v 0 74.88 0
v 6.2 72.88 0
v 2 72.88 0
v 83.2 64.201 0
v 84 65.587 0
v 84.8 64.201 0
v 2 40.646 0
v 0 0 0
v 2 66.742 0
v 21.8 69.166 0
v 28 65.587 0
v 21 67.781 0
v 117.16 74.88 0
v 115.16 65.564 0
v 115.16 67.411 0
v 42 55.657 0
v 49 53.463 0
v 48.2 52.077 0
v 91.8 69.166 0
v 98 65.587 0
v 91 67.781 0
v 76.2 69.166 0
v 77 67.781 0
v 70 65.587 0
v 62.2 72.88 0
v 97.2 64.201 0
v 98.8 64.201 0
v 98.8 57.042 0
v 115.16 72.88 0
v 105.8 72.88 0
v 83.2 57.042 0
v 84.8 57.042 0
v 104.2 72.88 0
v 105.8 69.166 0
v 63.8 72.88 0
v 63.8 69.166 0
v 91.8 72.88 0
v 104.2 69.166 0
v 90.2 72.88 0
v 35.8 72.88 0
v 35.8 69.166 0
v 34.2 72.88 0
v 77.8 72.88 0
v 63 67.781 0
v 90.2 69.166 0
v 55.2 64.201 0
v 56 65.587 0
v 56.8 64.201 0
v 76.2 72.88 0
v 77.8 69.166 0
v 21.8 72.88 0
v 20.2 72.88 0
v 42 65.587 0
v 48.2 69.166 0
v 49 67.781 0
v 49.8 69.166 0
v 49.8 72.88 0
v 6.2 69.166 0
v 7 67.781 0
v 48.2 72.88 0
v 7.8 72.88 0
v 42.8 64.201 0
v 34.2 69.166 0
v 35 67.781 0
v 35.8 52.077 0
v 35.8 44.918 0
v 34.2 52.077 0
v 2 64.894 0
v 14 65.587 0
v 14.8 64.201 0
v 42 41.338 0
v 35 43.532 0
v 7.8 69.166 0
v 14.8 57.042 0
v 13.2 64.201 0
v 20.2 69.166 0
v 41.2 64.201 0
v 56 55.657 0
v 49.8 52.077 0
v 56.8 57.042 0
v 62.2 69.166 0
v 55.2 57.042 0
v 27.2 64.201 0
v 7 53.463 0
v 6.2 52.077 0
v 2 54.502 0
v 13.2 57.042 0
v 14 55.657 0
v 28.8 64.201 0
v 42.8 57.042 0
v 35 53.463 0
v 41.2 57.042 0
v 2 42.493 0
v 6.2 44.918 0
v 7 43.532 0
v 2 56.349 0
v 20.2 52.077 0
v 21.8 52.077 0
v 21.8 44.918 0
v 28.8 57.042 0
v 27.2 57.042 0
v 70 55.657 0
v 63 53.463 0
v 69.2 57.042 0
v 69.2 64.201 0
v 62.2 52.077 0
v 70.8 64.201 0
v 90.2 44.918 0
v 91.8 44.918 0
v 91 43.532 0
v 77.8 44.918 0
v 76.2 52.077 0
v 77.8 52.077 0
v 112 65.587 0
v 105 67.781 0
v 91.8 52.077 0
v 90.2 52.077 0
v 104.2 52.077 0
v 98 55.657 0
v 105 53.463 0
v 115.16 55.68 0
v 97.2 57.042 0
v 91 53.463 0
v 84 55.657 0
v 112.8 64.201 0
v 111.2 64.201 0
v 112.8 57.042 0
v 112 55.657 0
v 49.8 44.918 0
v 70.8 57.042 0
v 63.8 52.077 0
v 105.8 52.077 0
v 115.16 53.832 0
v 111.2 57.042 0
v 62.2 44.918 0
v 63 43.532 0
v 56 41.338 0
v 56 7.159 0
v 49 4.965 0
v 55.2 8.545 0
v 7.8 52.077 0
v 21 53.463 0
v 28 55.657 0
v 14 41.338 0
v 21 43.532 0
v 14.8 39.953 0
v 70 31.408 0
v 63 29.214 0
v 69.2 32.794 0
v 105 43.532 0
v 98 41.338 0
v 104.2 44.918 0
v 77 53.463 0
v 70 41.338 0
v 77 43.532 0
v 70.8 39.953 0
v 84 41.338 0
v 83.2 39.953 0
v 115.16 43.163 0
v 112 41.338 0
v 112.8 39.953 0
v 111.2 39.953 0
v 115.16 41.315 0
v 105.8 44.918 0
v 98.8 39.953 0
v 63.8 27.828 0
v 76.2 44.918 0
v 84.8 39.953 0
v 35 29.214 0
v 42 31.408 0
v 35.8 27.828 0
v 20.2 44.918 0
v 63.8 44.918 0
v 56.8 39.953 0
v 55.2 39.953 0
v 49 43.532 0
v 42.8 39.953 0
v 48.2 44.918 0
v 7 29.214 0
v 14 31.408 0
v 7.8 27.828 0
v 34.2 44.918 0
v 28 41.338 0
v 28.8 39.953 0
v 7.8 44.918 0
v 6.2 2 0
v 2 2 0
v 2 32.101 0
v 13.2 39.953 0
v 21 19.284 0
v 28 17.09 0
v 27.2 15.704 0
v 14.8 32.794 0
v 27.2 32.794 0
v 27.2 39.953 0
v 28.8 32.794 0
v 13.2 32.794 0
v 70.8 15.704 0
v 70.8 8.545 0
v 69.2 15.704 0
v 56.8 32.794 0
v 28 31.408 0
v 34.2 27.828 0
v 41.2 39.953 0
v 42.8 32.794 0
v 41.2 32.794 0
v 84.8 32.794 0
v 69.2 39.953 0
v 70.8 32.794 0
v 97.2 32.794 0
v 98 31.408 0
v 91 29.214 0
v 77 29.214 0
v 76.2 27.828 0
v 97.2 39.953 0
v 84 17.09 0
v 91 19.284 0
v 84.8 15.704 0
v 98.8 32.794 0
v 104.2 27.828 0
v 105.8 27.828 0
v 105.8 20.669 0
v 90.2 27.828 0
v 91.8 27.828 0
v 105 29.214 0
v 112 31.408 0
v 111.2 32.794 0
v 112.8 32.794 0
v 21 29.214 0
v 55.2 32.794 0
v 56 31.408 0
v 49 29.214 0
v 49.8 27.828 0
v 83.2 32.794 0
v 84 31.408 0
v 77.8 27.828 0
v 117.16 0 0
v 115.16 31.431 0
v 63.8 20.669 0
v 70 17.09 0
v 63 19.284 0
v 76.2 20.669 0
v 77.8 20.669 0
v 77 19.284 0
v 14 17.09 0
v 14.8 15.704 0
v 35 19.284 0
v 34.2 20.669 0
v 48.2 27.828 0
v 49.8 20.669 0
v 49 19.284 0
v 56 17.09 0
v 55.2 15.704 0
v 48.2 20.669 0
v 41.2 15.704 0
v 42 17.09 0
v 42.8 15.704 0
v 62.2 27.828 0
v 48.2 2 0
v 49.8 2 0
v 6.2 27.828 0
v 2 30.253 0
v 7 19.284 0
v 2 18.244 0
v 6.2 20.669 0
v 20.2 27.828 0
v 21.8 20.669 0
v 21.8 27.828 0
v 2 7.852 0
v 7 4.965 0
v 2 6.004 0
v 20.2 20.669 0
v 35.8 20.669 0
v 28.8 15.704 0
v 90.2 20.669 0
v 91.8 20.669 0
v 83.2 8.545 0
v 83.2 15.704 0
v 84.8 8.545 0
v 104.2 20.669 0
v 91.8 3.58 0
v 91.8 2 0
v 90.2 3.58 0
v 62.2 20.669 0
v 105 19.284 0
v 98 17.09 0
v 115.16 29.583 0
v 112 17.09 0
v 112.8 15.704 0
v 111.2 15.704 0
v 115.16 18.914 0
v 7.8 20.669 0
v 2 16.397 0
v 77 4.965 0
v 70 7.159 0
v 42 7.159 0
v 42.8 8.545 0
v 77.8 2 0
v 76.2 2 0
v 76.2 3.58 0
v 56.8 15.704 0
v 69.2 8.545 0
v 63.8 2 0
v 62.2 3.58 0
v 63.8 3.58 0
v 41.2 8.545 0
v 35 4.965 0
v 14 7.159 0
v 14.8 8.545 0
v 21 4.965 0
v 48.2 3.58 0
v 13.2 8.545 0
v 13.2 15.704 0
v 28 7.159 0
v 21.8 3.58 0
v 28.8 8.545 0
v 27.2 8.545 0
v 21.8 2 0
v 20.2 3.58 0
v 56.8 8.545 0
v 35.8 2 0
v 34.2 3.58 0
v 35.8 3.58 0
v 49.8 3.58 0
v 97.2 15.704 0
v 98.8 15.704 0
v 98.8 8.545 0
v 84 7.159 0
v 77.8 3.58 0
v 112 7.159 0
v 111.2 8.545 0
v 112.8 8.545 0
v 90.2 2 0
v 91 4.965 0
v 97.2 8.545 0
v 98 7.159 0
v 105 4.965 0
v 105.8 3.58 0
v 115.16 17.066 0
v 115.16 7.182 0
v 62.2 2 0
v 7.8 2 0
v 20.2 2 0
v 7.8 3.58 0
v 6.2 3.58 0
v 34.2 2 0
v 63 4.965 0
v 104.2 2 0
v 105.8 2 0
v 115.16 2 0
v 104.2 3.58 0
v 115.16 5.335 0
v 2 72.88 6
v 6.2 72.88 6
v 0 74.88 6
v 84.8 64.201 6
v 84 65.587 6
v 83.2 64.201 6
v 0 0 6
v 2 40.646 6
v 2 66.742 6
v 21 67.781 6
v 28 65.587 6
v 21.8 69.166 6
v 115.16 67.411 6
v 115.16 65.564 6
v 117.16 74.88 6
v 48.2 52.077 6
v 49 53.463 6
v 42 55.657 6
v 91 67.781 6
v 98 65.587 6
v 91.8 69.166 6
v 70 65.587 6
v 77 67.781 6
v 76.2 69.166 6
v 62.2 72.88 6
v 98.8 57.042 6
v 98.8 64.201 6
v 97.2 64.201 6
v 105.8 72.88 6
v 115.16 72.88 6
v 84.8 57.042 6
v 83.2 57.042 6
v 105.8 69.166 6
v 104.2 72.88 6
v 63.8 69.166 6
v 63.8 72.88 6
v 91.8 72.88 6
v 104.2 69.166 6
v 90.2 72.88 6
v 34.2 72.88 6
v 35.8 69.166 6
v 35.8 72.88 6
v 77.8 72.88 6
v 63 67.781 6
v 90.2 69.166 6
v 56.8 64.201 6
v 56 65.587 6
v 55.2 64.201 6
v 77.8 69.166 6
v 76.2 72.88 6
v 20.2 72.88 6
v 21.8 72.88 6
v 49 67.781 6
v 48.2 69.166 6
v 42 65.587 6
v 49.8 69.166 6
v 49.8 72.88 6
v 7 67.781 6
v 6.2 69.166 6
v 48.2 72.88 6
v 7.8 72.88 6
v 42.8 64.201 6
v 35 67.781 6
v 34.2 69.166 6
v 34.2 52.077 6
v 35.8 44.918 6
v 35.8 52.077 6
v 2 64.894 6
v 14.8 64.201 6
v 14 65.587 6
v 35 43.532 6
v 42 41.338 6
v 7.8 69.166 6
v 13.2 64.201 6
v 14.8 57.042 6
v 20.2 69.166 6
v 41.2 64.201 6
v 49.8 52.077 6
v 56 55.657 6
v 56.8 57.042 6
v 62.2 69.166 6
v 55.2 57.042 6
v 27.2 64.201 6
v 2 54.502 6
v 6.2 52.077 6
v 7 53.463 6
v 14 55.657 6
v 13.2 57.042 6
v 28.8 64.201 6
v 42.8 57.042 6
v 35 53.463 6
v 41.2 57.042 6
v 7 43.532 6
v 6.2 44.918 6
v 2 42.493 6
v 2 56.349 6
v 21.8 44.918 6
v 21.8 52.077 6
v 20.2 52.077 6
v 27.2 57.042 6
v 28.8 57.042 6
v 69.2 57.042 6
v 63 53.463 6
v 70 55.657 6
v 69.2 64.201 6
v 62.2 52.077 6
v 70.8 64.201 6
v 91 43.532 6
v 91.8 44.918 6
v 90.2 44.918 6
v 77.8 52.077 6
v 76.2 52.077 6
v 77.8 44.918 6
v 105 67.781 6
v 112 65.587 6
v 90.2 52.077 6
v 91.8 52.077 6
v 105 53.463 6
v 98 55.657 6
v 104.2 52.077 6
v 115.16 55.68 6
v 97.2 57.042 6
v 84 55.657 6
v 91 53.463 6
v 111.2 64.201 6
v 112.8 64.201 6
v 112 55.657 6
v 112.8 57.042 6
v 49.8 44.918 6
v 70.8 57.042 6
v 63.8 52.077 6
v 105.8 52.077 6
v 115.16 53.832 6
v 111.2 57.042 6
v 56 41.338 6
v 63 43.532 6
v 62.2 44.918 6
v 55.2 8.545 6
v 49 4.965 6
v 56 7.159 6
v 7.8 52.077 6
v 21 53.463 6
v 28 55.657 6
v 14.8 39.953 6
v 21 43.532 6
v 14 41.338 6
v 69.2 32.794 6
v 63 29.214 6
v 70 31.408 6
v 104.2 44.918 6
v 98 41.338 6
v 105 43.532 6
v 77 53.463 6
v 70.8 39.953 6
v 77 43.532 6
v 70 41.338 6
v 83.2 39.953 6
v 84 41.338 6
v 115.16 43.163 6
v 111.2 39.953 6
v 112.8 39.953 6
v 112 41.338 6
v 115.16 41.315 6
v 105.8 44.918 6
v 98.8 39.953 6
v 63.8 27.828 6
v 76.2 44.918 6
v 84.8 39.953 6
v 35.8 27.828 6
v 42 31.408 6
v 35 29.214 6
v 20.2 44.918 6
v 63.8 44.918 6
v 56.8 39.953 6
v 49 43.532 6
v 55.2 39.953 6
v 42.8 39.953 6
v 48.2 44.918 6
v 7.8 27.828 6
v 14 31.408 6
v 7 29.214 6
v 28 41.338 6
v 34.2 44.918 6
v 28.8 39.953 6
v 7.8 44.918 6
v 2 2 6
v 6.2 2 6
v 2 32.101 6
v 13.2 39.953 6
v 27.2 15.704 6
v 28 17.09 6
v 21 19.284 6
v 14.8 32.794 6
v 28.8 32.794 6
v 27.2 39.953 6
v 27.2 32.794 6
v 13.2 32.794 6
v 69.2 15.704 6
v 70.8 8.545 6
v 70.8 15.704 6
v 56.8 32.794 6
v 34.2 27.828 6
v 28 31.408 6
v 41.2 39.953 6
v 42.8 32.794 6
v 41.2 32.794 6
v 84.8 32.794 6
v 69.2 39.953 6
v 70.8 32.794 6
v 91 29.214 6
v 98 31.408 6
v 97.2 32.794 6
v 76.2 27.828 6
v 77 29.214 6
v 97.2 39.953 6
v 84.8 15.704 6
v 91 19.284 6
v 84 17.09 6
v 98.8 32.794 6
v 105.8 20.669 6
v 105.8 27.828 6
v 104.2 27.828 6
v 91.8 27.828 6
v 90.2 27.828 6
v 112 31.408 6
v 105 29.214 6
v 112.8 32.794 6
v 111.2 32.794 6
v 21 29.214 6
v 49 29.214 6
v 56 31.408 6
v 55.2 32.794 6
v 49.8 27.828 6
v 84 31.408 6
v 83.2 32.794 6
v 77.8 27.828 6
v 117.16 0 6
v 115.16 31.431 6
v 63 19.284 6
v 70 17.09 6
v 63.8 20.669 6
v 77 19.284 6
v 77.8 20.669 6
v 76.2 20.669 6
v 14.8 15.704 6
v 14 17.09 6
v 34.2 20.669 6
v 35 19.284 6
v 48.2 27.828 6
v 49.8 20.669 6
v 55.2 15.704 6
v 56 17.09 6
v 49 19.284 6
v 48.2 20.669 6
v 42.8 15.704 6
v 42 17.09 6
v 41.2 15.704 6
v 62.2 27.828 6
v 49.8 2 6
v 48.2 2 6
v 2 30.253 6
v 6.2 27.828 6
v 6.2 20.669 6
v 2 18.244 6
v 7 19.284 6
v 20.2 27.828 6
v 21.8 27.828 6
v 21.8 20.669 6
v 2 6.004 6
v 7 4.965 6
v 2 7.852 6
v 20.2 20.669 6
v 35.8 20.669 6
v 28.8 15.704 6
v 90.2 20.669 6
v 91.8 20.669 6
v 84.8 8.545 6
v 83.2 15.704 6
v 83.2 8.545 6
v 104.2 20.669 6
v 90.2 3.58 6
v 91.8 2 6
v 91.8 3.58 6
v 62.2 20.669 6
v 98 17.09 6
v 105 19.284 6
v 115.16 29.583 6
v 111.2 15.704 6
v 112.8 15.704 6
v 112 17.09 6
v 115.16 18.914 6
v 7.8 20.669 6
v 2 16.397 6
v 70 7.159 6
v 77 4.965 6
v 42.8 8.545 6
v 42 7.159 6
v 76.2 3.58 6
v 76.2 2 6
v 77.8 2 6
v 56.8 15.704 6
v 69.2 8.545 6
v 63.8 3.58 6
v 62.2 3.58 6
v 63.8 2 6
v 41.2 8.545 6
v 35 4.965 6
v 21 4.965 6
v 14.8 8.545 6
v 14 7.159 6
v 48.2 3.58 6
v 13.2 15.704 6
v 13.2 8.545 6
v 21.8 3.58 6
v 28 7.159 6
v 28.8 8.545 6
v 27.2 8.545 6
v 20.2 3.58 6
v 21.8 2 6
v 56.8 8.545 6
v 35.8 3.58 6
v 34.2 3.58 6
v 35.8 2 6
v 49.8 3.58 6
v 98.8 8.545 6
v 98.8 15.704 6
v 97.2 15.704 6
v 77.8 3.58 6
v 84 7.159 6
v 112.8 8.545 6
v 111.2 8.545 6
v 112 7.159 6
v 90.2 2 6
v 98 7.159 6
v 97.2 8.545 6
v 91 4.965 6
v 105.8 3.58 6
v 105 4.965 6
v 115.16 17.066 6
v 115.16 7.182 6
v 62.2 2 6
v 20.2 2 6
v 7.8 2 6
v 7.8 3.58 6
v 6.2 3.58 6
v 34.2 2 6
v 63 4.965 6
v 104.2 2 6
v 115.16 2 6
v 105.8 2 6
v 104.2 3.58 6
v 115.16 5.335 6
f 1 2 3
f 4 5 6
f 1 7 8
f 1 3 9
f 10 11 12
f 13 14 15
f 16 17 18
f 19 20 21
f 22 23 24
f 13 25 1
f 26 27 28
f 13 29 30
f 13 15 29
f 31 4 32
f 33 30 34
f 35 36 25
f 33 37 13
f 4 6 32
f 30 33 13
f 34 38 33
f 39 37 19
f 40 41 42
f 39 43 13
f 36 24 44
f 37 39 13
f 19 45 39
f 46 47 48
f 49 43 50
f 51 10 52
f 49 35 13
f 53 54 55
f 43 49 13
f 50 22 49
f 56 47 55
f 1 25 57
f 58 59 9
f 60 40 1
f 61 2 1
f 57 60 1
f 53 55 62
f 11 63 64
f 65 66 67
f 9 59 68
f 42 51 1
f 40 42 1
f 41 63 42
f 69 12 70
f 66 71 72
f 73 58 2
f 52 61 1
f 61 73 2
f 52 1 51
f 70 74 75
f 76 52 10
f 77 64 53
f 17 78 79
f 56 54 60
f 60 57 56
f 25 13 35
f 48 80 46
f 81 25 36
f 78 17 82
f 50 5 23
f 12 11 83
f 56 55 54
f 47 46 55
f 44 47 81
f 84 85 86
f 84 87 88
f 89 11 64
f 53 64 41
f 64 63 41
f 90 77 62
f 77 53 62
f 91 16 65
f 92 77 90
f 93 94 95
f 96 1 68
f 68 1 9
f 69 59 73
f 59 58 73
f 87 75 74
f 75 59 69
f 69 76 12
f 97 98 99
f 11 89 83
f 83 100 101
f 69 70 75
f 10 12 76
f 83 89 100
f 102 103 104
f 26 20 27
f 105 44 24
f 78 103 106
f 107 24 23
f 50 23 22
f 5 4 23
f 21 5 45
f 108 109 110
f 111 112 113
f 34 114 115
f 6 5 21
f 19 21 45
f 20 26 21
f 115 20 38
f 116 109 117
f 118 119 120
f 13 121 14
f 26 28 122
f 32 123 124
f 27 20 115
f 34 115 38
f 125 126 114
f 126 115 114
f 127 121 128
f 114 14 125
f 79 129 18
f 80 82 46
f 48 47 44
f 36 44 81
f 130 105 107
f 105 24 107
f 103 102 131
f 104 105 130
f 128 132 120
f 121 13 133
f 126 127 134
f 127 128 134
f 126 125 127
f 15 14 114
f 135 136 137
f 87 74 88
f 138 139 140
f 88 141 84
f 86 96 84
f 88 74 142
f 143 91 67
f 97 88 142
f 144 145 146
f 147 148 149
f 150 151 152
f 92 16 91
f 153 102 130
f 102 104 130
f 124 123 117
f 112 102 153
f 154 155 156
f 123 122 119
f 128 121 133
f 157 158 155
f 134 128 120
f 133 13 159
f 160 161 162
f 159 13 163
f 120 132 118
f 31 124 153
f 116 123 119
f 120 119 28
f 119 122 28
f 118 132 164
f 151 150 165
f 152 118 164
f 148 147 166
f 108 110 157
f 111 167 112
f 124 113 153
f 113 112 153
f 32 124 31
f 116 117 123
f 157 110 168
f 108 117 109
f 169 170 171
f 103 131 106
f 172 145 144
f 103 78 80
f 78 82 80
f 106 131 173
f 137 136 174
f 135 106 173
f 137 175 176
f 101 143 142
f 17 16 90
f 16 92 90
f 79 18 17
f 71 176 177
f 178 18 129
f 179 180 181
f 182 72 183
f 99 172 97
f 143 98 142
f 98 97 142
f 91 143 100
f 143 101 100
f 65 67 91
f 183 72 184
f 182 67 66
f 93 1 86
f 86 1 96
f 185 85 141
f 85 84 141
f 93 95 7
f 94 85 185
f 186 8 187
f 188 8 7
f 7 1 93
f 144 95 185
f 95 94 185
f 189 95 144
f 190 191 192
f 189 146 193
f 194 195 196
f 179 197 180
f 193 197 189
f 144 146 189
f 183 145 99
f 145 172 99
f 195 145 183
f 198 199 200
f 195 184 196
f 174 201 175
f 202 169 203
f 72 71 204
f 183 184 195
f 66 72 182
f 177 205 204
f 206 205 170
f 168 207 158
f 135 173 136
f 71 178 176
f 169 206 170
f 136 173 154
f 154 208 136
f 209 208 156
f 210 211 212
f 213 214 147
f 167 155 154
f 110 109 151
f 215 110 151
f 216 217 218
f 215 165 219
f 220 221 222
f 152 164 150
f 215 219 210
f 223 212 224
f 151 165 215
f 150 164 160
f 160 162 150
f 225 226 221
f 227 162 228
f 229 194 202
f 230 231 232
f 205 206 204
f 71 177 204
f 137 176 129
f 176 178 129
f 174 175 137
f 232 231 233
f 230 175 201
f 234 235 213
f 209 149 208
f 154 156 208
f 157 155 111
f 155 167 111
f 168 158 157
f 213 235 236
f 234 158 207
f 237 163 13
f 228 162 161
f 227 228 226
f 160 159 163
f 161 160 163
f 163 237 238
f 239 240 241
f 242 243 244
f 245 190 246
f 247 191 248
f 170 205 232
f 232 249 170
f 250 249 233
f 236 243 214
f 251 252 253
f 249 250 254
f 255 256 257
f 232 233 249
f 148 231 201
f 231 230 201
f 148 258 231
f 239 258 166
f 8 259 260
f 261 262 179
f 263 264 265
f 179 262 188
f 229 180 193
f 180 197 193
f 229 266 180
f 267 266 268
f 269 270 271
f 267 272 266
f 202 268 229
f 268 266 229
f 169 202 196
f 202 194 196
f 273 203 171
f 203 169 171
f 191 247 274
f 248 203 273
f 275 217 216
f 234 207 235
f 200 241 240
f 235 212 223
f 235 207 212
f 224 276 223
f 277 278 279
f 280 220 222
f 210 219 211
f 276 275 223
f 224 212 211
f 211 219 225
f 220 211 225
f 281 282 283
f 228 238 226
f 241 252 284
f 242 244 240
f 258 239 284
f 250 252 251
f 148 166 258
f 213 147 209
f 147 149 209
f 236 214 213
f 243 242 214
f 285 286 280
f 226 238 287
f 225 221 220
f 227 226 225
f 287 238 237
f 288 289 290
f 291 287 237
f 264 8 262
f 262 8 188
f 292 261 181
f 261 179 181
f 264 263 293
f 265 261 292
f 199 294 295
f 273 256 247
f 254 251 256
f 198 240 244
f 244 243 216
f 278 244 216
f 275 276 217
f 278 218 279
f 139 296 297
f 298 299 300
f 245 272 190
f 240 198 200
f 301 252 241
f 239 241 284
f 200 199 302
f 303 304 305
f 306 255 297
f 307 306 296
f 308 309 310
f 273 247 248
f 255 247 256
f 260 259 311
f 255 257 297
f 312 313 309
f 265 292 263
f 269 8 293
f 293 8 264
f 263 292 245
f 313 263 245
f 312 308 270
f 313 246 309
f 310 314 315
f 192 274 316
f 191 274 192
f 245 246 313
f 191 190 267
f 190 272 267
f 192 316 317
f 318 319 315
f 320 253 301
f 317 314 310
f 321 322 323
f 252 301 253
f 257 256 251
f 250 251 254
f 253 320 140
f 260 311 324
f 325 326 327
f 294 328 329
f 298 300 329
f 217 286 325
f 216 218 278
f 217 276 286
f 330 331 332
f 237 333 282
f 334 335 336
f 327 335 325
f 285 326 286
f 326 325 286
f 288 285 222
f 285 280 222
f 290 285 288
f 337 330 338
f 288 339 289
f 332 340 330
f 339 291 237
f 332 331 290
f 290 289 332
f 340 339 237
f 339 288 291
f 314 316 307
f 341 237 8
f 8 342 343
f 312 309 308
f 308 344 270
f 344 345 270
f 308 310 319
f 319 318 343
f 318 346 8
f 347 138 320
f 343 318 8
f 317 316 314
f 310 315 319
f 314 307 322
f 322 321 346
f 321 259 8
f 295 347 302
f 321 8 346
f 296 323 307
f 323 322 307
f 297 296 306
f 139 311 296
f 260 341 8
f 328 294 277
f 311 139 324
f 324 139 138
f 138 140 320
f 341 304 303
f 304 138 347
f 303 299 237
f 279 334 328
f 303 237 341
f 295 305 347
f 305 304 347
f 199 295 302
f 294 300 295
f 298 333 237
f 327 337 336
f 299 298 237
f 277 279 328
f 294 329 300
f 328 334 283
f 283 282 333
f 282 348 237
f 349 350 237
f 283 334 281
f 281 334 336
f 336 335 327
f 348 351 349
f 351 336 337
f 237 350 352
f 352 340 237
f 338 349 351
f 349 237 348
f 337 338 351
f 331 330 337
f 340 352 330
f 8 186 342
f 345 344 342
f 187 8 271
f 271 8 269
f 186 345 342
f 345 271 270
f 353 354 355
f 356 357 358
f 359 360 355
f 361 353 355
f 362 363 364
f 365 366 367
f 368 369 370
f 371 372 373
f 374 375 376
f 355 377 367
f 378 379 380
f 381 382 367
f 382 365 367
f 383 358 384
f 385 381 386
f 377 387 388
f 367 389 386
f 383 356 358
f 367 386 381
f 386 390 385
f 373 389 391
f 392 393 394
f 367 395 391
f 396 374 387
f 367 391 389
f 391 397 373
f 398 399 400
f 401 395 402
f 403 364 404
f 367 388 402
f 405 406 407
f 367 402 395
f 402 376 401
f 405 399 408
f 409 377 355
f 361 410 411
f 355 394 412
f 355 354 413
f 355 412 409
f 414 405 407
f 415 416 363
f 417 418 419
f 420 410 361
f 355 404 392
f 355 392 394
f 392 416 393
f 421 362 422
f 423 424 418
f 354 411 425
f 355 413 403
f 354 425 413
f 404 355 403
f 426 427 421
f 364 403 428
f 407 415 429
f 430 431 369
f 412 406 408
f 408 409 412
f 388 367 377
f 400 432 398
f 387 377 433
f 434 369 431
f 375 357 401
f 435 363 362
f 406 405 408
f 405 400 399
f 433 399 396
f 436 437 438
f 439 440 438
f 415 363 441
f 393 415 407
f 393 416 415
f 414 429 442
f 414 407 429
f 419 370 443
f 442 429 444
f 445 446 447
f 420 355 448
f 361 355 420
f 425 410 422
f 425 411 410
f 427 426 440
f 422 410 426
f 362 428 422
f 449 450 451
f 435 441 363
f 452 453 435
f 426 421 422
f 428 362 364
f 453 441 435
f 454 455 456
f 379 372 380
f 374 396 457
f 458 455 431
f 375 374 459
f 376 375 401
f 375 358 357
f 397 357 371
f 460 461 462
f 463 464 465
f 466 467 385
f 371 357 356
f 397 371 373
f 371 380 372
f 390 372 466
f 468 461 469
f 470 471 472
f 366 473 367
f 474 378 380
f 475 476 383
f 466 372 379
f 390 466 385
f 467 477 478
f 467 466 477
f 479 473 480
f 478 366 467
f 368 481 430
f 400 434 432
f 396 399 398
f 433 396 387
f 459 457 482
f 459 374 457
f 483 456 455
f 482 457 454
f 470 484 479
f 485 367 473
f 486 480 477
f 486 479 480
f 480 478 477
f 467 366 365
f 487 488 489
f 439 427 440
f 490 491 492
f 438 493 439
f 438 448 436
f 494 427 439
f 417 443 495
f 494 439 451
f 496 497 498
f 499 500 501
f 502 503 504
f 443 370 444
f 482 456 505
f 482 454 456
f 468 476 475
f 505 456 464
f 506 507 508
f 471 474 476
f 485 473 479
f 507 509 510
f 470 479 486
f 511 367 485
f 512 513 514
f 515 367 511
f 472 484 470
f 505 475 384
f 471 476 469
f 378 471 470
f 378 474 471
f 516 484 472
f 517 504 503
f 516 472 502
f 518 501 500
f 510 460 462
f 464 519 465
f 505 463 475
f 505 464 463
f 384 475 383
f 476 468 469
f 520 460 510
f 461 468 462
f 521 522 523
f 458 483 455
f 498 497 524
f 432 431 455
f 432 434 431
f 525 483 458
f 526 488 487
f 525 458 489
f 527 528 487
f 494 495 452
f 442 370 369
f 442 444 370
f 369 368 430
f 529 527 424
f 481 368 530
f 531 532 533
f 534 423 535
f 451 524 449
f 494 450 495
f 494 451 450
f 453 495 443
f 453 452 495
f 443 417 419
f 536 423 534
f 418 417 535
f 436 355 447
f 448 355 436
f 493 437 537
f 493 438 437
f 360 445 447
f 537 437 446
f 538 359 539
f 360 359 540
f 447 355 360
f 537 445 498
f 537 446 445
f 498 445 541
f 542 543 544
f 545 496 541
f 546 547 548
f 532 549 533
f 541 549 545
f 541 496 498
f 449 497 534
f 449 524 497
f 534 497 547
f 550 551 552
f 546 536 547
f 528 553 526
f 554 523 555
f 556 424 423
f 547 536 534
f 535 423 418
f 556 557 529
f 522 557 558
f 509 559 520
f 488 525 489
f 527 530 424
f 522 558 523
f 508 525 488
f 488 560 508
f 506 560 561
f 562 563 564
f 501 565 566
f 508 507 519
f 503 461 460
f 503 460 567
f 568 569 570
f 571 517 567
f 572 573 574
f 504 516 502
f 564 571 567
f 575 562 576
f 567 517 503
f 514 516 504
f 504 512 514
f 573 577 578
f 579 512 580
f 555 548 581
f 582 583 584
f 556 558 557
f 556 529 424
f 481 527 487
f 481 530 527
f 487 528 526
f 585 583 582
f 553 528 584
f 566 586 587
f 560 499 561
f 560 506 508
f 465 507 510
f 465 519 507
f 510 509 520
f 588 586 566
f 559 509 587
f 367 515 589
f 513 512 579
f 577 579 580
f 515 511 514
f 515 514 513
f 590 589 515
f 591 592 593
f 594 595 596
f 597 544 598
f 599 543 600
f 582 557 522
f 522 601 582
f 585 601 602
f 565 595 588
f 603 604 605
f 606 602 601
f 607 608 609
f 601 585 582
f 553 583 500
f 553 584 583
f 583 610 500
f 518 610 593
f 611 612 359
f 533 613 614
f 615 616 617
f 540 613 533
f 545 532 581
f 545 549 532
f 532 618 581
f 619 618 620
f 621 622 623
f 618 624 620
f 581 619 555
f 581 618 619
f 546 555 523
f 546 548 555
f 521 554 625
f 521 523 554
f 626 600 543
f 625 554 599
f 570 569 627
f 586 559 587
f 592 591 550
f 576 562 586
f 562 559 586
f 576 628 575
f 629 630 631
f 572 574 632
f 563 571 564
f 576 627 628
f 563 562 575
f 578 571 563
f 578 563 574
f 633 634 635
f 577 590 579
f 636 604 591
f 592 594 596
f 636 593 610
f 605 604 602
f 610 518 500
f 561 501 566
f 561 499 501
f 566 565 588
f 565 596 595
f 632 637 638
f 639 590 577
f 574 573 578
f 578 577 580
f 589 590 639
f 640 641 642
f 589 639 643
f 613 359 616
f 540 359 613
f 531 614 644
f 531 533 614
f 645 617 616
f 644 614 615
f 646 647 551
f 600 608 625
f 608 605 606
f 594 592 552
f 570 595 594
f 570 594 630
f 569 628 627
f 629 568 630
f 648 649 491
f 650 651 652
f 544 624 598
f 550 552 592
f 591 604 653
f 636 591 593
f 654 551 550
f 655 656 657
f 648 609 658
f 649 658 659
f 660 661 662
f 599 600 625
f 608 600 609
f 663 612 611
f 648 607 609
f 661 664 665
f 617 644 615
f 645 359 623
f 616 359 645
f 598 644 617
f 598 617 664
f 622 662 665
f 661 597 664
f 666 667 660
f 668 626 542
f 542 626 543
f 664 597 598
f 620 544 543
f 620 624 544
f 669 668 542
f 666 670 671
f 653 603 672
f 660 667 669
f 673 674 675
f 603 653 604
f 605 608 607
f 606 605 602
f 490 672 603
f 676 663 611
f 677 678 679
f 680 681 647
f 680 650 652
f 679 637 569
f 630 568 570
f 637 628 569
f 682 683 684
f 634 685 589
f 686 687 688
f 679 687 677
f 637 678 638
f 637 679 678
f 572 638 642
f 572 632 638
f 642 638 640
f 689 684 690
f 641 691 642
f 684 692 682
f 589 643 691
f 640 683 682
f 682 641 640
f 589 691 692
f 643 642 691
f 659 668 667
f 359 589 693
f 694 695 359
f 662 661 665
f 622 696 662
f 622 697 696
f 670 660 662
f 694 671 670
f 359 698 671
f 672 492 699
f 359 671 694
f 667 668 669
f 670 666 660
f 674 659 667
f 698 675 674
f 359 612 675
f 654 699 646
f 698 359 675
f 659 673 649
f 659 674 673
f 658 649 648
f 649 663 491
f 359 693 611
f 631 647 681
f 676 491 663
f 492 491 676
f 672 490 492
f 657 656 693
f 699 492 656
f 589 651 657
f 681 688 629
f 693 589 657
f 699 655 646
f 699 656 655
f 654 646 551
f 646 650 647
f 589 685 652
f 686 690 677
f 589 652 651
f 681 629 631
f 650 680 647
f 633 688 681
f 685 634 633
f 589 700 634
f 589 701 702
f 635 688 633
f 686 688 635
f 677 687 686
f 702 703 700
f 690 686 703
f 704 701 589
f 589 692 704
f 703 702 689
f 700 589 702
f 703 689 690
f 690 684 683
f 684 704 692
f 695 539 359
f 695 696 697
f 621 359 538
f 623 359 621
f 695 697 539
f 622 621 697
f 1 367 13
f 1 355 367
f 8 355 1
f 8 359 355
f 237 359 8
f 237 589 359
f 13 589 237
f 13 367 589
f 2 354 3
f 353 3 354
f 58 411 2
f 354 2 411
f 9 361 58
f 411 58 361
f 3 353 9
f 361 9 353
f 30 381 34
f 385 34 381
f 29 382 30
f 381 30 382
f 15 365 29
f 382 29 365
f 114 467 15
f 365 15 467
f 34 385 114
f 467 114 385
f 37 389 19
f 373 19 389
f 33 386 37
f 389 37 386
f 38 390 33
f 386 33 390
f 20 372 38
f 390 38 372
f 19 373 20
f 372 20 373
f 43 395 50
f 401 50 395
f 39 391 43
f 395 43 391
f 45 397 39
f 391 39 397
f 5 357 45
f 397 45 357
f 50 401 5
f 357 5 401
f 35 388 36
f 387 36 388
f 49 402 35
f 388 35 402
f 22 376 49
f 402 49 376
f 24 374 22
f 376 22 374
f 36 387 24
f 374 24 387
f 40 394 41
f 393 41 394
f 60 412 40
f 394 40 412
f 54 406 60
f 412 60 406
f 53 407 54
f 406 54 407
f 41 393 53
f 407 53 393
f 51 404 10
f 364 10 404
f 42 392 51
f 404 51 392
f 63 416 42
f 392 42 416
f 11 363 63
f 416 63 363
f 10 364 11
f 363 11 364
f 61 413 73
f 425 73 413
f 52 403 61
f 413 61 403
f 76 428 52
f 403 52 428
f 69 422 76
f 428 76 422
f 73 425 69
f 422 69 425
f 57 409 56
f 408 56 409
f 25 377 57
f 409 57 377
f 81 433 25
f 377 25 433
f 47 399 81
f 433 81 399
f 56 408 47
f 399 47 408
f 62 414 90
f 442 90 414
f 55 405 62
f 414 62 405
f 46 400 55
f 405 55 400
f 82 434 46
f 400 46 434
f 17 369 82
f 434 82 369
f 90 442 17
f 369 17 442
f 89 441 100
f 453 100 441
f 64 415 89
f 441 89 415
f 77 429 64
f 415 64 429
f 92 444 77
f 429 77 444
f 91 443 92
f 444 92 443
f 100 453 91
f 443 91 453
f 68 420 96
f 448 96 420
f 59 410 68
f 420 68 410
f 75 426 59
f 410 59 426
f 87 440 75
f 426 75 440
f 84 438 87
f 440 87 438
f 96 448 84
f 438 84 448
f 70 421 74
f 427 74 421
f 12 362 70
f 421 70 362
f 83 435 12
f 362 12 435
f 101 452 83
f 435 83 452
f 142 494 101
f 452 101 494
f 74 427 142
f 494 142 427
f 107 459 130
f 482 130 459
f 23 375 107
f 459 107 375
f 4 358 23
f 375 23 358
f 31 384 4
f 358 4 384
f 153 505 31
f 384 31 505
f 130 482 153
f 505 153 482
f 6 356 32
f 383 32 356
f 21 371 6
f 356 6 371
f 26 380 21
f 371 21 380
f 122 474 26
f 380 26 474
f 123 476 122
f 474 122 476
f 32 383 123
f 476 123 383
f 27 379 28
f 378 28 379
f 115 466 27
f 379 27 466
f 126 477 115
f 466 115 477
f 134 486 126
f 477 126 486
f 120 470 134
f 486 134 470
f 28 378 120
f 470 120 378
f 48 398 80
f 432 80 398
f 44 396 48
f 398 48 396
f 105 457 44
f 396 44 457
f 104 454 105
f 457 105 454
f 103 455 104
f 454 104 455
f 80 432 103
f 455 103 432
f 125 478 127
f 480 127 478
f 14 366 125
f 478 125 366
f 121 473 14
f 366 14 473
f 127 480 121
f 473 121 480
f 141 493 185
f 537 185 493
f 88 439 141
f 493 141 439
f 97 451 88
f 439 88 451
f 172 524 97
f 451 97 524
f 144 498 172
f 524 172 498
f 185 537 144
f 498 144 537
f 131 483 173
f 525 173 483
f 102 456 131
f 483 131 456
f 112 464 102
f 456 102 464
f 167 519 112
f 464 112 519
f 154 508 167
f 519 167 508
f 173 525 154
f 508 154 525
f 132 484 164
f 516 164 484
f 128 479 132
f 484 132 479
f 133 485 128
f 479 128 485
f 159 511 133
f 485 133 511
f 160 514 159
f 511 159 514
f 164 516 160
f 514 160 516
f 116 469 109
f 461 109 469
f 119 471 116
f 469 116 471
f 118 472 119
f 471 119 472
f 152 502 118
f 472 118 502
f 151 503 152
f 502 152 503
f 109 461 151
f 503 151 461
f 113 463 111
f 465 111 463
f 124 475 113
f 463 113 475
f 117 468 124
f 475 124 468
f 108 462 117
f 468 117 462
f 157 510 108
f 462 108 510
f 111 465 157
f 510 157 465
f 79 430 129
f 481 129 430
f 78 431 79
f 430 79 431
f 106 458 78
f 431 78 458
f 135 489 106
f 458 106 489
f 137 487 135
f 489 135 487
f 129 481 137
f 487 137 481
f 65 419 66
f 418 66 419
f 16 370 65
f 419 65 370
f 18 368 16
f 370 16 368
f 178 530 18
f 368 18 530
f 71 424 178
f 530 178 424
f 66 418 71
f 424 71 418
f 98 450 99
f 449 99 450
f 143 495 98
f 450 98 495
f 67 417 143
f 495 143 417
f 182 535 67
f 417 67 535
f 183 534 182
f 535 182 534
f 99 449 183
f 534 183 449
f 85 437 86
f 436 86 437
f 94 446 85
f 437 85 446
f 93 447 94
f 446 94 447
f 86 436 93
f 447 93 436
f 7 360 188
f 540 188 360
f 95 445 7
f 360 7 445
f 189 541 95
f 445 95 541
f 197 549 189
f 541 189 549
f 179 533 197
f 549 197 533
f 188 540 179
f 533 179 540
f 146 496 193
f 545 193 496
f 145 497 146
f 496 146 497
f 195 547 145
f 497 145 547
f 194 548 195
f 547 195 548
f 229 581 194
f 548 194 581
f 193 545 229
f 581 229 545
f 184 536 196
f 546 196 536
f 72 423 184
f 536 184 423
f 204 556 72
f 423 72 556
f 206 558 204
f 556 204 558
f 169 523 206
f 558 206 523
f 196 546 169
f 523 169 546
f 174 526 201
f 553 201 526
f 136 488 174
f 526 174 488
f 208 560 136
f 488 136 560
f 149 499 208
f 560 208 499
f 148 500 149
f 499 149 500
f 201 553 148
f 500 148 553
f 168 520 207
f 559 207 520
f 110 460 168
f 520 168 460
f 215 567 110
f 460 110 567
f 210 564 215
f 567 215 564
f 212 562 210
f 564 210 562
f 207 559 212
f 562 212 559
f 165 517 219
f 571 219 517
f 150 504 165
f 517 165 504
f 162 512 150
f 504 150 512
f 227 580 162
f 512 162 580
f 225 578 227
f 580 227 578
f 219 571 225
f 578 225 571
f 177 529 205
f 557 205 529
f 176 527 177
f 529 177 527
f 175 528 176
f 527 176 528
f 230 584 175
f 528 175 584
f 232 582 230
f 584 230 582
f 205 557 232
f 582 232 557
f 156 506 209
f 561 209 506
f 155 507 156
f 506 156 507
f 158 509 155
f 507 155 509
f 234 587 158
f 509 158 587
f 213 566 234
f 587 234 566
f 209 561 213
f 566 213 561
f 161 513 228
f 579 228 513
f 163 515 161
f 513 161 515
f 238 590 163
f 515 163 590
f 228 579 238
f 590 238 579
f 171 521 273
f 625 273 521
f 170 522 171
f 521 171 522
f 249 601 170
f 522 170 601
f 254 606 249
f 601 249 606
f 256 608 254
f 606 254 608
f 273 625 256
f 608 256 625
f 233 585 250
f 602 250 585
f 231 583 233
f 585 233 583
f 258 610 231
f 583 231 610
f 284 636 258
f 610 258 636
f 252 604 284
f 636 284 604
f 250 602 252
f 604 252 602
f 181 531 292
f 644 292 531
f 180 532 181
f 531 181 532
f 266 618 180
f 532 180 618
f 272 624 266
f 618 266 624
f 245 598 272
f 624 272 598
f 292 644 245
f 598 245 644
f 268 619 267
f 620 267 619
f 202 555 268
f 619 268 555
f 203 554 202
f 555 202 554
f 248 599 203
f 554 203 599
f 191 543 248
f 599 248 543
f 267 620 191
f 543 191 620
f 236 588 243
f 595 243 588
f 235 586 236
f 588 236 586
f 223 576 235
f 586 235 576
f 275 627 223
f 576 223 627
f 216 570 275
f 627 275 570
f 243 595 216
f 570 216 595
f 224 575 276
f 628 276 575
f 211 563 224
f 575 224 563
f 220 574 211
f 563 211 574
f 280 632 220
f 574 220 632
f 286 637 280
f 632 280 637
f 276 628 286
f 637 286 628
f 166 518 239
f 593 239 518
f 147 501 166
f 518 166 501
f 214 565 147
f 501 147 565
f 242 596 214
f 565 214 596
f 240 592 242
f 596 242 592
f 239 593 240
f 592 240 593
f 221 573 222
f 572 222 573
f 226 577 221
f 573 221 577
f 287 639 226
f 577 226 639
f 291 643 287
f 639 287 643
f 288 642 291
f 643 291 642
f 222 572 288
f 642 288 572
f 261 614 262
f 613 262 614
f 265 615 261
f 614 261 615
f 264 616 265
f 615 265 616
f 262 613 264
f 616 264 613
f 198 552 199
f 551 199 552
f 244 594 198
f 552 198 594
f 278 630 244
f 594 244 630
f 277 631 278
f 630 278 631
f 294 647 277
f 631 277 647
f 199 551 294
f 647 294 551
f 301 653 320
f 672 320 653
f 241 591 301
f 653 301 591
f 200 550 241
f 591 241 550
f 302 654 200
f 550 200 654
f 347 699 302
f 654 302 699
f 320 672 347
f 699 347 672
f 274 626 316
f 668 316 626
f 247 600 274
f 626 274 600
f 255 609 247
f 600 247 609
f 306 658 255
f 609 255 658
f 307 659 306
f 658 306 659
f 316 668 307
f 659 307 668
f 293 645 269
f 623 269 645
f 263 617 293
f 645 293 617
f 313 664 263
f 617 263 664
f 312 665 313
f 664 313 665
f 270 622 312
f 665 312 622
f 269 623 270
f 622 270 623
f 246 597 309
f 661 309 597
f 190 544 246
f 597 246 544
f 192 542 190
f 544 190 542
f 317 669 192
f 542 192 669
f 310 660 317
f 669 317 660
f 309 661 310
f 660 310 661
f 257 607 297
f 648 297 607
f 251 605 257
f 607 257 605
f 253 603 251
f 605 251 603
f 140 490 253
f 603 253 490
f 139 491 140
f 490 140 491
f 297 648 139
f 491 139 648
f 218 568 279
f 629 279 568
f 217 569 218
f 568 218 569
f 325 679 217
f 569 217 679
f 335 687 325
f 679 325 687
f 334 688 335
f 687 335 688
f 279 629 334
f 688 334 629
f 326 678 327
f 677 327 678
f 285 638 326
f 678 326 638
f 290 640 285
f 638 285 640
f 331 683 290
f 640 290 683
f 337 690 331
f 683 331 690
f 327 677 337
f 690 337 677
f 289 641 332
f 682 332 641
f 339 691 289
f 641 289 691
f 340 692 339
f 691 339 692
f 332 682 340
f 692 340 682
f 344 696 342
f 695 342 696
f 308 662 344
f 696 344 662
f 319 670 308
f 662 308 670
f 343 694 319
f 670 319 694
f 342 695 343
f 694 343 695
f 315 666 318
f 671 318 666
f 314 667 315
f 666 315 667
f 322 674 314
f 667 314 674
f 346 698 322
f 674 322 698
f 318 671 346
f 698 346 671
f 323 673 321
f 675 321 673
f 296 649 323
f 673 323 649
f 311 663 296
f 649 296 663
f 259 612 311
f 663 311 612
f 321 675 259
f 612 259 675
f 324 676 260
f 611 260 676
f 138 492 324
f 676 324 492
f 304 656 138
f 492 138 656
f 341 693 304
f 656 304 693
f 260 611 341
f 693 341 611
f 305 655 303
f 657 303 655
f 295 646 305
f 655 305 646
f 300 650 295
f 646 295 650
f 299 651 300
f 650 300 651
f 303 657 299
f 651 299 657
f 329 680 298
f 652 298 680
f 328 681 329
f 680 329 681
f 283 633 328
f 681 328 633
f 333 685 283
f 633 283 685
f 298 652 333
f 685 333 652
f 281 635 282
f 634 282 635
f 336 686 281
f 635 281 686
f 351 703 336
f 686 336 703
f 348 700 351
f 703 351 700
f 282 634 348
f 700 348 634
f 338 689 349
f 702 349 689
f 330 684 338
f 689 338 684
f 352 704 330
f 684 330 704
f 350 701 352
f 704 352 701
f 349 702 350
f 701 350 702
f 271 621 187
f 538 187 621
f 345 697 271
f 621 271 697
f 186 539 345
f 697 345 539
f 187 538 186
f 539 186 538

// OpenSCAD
// file: labware.scad
// BaeBugs parametric labware library (labware twin), v0.1
// All parts are built as 2D profiles extruded in Z, so remixes render fast.
// Units: mm. SBS footprint per ANSI/SLAS 1-2004: 127.76 x 85.48.
// License: CERN-OHL-W-2.0 unless a part file says otherwise.

SBS_X = 127.76;
SBS_Y = 85.48;
$fn = 32;

// Rounded rectangle profile anchored at the origin.
module rrect(x, y, r = 3) {
    translate([r, r]) offset(r = r) square([x - 2 * r, y - 2 * r]);
}

// Grid of round holes. A1 is the back-left well, matching Opentrons/SBS naming,
// so row 0 sits at y = footprint_y - a1_y.
module hole_grid(rows, cols, pitch, hole_d, a1_x, a1_y, footprint_y) {
    for (r = [0 : rows - 1], c = [0 : cols - 1])
        translate([a1_x + c * pitch, footprint_y - a1_y - r * pitch]) circle(d = hole_d);
}

// Tube or tip rack plate: solid top deck with holes, plus a skirt so it sits in a deck slot.
module sbs_plate(rows = 8, cols = 12, pitch = 9, hole_d = 5.8, height = 20,
                 a1_x = 14.38, a1_y = 11.24, footprint_x = SBS_X, footprint_y = SBS_Y,
                 deck = 3, skirt = 2) {
    // top deck
    translate([0, 0, height - deck]) linear_extrude(deck)
        difference() {
            rrect(footprint_x, footprint_y);
            hole_grid(rows, cols, pitch, hole_d, a1_x, a1_y, footprint_y);
        }
    // skirt wall
    linear_extrude(height - deck)
        difference() {
            rrect(footprint_x, footprint_y);
            translate([skirt, skirt]) rrect(footprint_x - 2 * skirt, footprint_y - 2 * skirt, 2);
        }
    // bottom locator ring (keeps tubes from sliding, 1.5 mm floor with smaller holes)
    linear_extrude(1.5)
        difference() {
            translate([skirt, skirt]) rrect(footprint_x - 2 * skirt, footprint_y - 2 * skirt, 2);
            hole_grid(rows, cols, pitch, hole_d * 0.6, a1_x, a1_y, footprint_y);
        }
}

// Flat grid insert (e.g. 10x10 cryo box insert).
module grid_insert(rows = 10, cols = 10, pitch = 13, hole_d = 12.8, height = 12,
                   a1_x = 8, a1_y = 8, footprint_x = 133, footprint_y = 133) {
    linear_extrude(height)
        difference() {
            rrect(footprint_x, footprint_y, 2);
            hole_grid(rows, cols, pitch, hole_d, a1_x, a1_y, footprint_y);
        }
}

// Open lipped frame: the "folder" frame. Inserts rest on the inner lip.
module frame(footprint_x = SBS_X, footprint_y = SBS_Y, height = 12, wall = 5, lip = 2, lip_z = 2) {
    linear_extrude(height)
        difference() {
            rrect(footprint_x, footprint_y);
            translate([wall, wall]) square([footprint_x - 2 * wall, footprint_y - 2 * wall]);
        }
    linear_extrude(lip_z)
        difference() {
            translate([wall - 0.01, wall - 0.01]) square([footprint_x - 2 * wall + 0.02, footprint_y - 2 * wall + 0.02]);
            translate([wall + lip, wall + lip]) square([footprint_x - 2 * (wall + lip), footprint_y - 2 * (wall + lip)]);
        }
}

// Frame split into rows x cols windows, each with a perforated floor (printed mesh).
module grid_frame(footprint_x = SBS_X, footprint_y = SBS_Y, height = 8, wall = 4, rows = 2, cols = 3,
                  rib = 3, floor = 1.2, mesh_hole = 2, mesh_pitch = 3) {
    ix = footprint_x - 2 * wall;
    iy = footprint_y - 2 * wall;
    cw = (ix - (cols - 1) * rib) / cols;
    ch = (iy - (rows - 1) * rib) / rows;
    // walls and ribs
    linear_extrude(height)
        difference() {
            rrect(footprint_x, footprint_y);
            for (r = [0 : rows - 1], c = [0 : cols - 1])
                translate([wall + c * (cw + rib), wall + r * (ch + rib)]) square([cw, ch]);
        }
    // perforated floor (square holes print cleanly without supports)
    linear_extrude(floor)
        difference() {
            translate([wall, wall]) square([ix, iy]);
            for (r = [0 : rows - 1], c = [0 : cols - 1])
                translate([wall + c * (cw + rib), wall + r * (ch + rib)])
                    for (i = [0 : floor((cw - mesh_pitch) / mesh_pitch)], j = [0 : floor((ch - mesh_pitch) / mesh_pitch)])
                        translate([mesh_pitch * 0.75 + i * mesh_pitch, mesh_pitch * 0.75 + j * mesh_pitch])
                            square(mesh_hole, center = true);
        }
}

// Hexagonal lattice clipped to a rectangle with a solid rim.
module honeycomb(footprint_x = 117, footprint_y = 75, height = 6, cell = 14, wall = 1.6, rim = 2) {
    dx = cell;                 // across-flats pitch
    dy = cell * sqrt(3) / 2;   // row pitch
    linear_extrude(height)
        difference() {
            square([footprint_x, footprint_y]);
            intersection() {
                translate([rim, rim]) square([footprint_x - 2 * rim, footprint_y - 2 * rim]);
                for (j = [0 : ceil(footprint_y / dy)], i = [-1 : ceil(footprint_x / dx)])
                    translate([i * dx + (j % 2) * dx / 2, j * dy])
                        rotate(30) circle(d = (cell - wall) / cos(30), $fn = 6);
            }
        }
}
// main file
// Honeycomb insert for SBS frame
// part id: print-honeycomb  license: CC0-1.0
// derived from: obs-printed-honeycomb
// Edit the parameters to remix. Catalog dimensions marked est. need calipers before a production run.
use <labware.scad>

honeycomb(footprint_x = 117.16, footprint_y = 74.88, height = 6.0, cell = 14.0, wall = 1.6);
